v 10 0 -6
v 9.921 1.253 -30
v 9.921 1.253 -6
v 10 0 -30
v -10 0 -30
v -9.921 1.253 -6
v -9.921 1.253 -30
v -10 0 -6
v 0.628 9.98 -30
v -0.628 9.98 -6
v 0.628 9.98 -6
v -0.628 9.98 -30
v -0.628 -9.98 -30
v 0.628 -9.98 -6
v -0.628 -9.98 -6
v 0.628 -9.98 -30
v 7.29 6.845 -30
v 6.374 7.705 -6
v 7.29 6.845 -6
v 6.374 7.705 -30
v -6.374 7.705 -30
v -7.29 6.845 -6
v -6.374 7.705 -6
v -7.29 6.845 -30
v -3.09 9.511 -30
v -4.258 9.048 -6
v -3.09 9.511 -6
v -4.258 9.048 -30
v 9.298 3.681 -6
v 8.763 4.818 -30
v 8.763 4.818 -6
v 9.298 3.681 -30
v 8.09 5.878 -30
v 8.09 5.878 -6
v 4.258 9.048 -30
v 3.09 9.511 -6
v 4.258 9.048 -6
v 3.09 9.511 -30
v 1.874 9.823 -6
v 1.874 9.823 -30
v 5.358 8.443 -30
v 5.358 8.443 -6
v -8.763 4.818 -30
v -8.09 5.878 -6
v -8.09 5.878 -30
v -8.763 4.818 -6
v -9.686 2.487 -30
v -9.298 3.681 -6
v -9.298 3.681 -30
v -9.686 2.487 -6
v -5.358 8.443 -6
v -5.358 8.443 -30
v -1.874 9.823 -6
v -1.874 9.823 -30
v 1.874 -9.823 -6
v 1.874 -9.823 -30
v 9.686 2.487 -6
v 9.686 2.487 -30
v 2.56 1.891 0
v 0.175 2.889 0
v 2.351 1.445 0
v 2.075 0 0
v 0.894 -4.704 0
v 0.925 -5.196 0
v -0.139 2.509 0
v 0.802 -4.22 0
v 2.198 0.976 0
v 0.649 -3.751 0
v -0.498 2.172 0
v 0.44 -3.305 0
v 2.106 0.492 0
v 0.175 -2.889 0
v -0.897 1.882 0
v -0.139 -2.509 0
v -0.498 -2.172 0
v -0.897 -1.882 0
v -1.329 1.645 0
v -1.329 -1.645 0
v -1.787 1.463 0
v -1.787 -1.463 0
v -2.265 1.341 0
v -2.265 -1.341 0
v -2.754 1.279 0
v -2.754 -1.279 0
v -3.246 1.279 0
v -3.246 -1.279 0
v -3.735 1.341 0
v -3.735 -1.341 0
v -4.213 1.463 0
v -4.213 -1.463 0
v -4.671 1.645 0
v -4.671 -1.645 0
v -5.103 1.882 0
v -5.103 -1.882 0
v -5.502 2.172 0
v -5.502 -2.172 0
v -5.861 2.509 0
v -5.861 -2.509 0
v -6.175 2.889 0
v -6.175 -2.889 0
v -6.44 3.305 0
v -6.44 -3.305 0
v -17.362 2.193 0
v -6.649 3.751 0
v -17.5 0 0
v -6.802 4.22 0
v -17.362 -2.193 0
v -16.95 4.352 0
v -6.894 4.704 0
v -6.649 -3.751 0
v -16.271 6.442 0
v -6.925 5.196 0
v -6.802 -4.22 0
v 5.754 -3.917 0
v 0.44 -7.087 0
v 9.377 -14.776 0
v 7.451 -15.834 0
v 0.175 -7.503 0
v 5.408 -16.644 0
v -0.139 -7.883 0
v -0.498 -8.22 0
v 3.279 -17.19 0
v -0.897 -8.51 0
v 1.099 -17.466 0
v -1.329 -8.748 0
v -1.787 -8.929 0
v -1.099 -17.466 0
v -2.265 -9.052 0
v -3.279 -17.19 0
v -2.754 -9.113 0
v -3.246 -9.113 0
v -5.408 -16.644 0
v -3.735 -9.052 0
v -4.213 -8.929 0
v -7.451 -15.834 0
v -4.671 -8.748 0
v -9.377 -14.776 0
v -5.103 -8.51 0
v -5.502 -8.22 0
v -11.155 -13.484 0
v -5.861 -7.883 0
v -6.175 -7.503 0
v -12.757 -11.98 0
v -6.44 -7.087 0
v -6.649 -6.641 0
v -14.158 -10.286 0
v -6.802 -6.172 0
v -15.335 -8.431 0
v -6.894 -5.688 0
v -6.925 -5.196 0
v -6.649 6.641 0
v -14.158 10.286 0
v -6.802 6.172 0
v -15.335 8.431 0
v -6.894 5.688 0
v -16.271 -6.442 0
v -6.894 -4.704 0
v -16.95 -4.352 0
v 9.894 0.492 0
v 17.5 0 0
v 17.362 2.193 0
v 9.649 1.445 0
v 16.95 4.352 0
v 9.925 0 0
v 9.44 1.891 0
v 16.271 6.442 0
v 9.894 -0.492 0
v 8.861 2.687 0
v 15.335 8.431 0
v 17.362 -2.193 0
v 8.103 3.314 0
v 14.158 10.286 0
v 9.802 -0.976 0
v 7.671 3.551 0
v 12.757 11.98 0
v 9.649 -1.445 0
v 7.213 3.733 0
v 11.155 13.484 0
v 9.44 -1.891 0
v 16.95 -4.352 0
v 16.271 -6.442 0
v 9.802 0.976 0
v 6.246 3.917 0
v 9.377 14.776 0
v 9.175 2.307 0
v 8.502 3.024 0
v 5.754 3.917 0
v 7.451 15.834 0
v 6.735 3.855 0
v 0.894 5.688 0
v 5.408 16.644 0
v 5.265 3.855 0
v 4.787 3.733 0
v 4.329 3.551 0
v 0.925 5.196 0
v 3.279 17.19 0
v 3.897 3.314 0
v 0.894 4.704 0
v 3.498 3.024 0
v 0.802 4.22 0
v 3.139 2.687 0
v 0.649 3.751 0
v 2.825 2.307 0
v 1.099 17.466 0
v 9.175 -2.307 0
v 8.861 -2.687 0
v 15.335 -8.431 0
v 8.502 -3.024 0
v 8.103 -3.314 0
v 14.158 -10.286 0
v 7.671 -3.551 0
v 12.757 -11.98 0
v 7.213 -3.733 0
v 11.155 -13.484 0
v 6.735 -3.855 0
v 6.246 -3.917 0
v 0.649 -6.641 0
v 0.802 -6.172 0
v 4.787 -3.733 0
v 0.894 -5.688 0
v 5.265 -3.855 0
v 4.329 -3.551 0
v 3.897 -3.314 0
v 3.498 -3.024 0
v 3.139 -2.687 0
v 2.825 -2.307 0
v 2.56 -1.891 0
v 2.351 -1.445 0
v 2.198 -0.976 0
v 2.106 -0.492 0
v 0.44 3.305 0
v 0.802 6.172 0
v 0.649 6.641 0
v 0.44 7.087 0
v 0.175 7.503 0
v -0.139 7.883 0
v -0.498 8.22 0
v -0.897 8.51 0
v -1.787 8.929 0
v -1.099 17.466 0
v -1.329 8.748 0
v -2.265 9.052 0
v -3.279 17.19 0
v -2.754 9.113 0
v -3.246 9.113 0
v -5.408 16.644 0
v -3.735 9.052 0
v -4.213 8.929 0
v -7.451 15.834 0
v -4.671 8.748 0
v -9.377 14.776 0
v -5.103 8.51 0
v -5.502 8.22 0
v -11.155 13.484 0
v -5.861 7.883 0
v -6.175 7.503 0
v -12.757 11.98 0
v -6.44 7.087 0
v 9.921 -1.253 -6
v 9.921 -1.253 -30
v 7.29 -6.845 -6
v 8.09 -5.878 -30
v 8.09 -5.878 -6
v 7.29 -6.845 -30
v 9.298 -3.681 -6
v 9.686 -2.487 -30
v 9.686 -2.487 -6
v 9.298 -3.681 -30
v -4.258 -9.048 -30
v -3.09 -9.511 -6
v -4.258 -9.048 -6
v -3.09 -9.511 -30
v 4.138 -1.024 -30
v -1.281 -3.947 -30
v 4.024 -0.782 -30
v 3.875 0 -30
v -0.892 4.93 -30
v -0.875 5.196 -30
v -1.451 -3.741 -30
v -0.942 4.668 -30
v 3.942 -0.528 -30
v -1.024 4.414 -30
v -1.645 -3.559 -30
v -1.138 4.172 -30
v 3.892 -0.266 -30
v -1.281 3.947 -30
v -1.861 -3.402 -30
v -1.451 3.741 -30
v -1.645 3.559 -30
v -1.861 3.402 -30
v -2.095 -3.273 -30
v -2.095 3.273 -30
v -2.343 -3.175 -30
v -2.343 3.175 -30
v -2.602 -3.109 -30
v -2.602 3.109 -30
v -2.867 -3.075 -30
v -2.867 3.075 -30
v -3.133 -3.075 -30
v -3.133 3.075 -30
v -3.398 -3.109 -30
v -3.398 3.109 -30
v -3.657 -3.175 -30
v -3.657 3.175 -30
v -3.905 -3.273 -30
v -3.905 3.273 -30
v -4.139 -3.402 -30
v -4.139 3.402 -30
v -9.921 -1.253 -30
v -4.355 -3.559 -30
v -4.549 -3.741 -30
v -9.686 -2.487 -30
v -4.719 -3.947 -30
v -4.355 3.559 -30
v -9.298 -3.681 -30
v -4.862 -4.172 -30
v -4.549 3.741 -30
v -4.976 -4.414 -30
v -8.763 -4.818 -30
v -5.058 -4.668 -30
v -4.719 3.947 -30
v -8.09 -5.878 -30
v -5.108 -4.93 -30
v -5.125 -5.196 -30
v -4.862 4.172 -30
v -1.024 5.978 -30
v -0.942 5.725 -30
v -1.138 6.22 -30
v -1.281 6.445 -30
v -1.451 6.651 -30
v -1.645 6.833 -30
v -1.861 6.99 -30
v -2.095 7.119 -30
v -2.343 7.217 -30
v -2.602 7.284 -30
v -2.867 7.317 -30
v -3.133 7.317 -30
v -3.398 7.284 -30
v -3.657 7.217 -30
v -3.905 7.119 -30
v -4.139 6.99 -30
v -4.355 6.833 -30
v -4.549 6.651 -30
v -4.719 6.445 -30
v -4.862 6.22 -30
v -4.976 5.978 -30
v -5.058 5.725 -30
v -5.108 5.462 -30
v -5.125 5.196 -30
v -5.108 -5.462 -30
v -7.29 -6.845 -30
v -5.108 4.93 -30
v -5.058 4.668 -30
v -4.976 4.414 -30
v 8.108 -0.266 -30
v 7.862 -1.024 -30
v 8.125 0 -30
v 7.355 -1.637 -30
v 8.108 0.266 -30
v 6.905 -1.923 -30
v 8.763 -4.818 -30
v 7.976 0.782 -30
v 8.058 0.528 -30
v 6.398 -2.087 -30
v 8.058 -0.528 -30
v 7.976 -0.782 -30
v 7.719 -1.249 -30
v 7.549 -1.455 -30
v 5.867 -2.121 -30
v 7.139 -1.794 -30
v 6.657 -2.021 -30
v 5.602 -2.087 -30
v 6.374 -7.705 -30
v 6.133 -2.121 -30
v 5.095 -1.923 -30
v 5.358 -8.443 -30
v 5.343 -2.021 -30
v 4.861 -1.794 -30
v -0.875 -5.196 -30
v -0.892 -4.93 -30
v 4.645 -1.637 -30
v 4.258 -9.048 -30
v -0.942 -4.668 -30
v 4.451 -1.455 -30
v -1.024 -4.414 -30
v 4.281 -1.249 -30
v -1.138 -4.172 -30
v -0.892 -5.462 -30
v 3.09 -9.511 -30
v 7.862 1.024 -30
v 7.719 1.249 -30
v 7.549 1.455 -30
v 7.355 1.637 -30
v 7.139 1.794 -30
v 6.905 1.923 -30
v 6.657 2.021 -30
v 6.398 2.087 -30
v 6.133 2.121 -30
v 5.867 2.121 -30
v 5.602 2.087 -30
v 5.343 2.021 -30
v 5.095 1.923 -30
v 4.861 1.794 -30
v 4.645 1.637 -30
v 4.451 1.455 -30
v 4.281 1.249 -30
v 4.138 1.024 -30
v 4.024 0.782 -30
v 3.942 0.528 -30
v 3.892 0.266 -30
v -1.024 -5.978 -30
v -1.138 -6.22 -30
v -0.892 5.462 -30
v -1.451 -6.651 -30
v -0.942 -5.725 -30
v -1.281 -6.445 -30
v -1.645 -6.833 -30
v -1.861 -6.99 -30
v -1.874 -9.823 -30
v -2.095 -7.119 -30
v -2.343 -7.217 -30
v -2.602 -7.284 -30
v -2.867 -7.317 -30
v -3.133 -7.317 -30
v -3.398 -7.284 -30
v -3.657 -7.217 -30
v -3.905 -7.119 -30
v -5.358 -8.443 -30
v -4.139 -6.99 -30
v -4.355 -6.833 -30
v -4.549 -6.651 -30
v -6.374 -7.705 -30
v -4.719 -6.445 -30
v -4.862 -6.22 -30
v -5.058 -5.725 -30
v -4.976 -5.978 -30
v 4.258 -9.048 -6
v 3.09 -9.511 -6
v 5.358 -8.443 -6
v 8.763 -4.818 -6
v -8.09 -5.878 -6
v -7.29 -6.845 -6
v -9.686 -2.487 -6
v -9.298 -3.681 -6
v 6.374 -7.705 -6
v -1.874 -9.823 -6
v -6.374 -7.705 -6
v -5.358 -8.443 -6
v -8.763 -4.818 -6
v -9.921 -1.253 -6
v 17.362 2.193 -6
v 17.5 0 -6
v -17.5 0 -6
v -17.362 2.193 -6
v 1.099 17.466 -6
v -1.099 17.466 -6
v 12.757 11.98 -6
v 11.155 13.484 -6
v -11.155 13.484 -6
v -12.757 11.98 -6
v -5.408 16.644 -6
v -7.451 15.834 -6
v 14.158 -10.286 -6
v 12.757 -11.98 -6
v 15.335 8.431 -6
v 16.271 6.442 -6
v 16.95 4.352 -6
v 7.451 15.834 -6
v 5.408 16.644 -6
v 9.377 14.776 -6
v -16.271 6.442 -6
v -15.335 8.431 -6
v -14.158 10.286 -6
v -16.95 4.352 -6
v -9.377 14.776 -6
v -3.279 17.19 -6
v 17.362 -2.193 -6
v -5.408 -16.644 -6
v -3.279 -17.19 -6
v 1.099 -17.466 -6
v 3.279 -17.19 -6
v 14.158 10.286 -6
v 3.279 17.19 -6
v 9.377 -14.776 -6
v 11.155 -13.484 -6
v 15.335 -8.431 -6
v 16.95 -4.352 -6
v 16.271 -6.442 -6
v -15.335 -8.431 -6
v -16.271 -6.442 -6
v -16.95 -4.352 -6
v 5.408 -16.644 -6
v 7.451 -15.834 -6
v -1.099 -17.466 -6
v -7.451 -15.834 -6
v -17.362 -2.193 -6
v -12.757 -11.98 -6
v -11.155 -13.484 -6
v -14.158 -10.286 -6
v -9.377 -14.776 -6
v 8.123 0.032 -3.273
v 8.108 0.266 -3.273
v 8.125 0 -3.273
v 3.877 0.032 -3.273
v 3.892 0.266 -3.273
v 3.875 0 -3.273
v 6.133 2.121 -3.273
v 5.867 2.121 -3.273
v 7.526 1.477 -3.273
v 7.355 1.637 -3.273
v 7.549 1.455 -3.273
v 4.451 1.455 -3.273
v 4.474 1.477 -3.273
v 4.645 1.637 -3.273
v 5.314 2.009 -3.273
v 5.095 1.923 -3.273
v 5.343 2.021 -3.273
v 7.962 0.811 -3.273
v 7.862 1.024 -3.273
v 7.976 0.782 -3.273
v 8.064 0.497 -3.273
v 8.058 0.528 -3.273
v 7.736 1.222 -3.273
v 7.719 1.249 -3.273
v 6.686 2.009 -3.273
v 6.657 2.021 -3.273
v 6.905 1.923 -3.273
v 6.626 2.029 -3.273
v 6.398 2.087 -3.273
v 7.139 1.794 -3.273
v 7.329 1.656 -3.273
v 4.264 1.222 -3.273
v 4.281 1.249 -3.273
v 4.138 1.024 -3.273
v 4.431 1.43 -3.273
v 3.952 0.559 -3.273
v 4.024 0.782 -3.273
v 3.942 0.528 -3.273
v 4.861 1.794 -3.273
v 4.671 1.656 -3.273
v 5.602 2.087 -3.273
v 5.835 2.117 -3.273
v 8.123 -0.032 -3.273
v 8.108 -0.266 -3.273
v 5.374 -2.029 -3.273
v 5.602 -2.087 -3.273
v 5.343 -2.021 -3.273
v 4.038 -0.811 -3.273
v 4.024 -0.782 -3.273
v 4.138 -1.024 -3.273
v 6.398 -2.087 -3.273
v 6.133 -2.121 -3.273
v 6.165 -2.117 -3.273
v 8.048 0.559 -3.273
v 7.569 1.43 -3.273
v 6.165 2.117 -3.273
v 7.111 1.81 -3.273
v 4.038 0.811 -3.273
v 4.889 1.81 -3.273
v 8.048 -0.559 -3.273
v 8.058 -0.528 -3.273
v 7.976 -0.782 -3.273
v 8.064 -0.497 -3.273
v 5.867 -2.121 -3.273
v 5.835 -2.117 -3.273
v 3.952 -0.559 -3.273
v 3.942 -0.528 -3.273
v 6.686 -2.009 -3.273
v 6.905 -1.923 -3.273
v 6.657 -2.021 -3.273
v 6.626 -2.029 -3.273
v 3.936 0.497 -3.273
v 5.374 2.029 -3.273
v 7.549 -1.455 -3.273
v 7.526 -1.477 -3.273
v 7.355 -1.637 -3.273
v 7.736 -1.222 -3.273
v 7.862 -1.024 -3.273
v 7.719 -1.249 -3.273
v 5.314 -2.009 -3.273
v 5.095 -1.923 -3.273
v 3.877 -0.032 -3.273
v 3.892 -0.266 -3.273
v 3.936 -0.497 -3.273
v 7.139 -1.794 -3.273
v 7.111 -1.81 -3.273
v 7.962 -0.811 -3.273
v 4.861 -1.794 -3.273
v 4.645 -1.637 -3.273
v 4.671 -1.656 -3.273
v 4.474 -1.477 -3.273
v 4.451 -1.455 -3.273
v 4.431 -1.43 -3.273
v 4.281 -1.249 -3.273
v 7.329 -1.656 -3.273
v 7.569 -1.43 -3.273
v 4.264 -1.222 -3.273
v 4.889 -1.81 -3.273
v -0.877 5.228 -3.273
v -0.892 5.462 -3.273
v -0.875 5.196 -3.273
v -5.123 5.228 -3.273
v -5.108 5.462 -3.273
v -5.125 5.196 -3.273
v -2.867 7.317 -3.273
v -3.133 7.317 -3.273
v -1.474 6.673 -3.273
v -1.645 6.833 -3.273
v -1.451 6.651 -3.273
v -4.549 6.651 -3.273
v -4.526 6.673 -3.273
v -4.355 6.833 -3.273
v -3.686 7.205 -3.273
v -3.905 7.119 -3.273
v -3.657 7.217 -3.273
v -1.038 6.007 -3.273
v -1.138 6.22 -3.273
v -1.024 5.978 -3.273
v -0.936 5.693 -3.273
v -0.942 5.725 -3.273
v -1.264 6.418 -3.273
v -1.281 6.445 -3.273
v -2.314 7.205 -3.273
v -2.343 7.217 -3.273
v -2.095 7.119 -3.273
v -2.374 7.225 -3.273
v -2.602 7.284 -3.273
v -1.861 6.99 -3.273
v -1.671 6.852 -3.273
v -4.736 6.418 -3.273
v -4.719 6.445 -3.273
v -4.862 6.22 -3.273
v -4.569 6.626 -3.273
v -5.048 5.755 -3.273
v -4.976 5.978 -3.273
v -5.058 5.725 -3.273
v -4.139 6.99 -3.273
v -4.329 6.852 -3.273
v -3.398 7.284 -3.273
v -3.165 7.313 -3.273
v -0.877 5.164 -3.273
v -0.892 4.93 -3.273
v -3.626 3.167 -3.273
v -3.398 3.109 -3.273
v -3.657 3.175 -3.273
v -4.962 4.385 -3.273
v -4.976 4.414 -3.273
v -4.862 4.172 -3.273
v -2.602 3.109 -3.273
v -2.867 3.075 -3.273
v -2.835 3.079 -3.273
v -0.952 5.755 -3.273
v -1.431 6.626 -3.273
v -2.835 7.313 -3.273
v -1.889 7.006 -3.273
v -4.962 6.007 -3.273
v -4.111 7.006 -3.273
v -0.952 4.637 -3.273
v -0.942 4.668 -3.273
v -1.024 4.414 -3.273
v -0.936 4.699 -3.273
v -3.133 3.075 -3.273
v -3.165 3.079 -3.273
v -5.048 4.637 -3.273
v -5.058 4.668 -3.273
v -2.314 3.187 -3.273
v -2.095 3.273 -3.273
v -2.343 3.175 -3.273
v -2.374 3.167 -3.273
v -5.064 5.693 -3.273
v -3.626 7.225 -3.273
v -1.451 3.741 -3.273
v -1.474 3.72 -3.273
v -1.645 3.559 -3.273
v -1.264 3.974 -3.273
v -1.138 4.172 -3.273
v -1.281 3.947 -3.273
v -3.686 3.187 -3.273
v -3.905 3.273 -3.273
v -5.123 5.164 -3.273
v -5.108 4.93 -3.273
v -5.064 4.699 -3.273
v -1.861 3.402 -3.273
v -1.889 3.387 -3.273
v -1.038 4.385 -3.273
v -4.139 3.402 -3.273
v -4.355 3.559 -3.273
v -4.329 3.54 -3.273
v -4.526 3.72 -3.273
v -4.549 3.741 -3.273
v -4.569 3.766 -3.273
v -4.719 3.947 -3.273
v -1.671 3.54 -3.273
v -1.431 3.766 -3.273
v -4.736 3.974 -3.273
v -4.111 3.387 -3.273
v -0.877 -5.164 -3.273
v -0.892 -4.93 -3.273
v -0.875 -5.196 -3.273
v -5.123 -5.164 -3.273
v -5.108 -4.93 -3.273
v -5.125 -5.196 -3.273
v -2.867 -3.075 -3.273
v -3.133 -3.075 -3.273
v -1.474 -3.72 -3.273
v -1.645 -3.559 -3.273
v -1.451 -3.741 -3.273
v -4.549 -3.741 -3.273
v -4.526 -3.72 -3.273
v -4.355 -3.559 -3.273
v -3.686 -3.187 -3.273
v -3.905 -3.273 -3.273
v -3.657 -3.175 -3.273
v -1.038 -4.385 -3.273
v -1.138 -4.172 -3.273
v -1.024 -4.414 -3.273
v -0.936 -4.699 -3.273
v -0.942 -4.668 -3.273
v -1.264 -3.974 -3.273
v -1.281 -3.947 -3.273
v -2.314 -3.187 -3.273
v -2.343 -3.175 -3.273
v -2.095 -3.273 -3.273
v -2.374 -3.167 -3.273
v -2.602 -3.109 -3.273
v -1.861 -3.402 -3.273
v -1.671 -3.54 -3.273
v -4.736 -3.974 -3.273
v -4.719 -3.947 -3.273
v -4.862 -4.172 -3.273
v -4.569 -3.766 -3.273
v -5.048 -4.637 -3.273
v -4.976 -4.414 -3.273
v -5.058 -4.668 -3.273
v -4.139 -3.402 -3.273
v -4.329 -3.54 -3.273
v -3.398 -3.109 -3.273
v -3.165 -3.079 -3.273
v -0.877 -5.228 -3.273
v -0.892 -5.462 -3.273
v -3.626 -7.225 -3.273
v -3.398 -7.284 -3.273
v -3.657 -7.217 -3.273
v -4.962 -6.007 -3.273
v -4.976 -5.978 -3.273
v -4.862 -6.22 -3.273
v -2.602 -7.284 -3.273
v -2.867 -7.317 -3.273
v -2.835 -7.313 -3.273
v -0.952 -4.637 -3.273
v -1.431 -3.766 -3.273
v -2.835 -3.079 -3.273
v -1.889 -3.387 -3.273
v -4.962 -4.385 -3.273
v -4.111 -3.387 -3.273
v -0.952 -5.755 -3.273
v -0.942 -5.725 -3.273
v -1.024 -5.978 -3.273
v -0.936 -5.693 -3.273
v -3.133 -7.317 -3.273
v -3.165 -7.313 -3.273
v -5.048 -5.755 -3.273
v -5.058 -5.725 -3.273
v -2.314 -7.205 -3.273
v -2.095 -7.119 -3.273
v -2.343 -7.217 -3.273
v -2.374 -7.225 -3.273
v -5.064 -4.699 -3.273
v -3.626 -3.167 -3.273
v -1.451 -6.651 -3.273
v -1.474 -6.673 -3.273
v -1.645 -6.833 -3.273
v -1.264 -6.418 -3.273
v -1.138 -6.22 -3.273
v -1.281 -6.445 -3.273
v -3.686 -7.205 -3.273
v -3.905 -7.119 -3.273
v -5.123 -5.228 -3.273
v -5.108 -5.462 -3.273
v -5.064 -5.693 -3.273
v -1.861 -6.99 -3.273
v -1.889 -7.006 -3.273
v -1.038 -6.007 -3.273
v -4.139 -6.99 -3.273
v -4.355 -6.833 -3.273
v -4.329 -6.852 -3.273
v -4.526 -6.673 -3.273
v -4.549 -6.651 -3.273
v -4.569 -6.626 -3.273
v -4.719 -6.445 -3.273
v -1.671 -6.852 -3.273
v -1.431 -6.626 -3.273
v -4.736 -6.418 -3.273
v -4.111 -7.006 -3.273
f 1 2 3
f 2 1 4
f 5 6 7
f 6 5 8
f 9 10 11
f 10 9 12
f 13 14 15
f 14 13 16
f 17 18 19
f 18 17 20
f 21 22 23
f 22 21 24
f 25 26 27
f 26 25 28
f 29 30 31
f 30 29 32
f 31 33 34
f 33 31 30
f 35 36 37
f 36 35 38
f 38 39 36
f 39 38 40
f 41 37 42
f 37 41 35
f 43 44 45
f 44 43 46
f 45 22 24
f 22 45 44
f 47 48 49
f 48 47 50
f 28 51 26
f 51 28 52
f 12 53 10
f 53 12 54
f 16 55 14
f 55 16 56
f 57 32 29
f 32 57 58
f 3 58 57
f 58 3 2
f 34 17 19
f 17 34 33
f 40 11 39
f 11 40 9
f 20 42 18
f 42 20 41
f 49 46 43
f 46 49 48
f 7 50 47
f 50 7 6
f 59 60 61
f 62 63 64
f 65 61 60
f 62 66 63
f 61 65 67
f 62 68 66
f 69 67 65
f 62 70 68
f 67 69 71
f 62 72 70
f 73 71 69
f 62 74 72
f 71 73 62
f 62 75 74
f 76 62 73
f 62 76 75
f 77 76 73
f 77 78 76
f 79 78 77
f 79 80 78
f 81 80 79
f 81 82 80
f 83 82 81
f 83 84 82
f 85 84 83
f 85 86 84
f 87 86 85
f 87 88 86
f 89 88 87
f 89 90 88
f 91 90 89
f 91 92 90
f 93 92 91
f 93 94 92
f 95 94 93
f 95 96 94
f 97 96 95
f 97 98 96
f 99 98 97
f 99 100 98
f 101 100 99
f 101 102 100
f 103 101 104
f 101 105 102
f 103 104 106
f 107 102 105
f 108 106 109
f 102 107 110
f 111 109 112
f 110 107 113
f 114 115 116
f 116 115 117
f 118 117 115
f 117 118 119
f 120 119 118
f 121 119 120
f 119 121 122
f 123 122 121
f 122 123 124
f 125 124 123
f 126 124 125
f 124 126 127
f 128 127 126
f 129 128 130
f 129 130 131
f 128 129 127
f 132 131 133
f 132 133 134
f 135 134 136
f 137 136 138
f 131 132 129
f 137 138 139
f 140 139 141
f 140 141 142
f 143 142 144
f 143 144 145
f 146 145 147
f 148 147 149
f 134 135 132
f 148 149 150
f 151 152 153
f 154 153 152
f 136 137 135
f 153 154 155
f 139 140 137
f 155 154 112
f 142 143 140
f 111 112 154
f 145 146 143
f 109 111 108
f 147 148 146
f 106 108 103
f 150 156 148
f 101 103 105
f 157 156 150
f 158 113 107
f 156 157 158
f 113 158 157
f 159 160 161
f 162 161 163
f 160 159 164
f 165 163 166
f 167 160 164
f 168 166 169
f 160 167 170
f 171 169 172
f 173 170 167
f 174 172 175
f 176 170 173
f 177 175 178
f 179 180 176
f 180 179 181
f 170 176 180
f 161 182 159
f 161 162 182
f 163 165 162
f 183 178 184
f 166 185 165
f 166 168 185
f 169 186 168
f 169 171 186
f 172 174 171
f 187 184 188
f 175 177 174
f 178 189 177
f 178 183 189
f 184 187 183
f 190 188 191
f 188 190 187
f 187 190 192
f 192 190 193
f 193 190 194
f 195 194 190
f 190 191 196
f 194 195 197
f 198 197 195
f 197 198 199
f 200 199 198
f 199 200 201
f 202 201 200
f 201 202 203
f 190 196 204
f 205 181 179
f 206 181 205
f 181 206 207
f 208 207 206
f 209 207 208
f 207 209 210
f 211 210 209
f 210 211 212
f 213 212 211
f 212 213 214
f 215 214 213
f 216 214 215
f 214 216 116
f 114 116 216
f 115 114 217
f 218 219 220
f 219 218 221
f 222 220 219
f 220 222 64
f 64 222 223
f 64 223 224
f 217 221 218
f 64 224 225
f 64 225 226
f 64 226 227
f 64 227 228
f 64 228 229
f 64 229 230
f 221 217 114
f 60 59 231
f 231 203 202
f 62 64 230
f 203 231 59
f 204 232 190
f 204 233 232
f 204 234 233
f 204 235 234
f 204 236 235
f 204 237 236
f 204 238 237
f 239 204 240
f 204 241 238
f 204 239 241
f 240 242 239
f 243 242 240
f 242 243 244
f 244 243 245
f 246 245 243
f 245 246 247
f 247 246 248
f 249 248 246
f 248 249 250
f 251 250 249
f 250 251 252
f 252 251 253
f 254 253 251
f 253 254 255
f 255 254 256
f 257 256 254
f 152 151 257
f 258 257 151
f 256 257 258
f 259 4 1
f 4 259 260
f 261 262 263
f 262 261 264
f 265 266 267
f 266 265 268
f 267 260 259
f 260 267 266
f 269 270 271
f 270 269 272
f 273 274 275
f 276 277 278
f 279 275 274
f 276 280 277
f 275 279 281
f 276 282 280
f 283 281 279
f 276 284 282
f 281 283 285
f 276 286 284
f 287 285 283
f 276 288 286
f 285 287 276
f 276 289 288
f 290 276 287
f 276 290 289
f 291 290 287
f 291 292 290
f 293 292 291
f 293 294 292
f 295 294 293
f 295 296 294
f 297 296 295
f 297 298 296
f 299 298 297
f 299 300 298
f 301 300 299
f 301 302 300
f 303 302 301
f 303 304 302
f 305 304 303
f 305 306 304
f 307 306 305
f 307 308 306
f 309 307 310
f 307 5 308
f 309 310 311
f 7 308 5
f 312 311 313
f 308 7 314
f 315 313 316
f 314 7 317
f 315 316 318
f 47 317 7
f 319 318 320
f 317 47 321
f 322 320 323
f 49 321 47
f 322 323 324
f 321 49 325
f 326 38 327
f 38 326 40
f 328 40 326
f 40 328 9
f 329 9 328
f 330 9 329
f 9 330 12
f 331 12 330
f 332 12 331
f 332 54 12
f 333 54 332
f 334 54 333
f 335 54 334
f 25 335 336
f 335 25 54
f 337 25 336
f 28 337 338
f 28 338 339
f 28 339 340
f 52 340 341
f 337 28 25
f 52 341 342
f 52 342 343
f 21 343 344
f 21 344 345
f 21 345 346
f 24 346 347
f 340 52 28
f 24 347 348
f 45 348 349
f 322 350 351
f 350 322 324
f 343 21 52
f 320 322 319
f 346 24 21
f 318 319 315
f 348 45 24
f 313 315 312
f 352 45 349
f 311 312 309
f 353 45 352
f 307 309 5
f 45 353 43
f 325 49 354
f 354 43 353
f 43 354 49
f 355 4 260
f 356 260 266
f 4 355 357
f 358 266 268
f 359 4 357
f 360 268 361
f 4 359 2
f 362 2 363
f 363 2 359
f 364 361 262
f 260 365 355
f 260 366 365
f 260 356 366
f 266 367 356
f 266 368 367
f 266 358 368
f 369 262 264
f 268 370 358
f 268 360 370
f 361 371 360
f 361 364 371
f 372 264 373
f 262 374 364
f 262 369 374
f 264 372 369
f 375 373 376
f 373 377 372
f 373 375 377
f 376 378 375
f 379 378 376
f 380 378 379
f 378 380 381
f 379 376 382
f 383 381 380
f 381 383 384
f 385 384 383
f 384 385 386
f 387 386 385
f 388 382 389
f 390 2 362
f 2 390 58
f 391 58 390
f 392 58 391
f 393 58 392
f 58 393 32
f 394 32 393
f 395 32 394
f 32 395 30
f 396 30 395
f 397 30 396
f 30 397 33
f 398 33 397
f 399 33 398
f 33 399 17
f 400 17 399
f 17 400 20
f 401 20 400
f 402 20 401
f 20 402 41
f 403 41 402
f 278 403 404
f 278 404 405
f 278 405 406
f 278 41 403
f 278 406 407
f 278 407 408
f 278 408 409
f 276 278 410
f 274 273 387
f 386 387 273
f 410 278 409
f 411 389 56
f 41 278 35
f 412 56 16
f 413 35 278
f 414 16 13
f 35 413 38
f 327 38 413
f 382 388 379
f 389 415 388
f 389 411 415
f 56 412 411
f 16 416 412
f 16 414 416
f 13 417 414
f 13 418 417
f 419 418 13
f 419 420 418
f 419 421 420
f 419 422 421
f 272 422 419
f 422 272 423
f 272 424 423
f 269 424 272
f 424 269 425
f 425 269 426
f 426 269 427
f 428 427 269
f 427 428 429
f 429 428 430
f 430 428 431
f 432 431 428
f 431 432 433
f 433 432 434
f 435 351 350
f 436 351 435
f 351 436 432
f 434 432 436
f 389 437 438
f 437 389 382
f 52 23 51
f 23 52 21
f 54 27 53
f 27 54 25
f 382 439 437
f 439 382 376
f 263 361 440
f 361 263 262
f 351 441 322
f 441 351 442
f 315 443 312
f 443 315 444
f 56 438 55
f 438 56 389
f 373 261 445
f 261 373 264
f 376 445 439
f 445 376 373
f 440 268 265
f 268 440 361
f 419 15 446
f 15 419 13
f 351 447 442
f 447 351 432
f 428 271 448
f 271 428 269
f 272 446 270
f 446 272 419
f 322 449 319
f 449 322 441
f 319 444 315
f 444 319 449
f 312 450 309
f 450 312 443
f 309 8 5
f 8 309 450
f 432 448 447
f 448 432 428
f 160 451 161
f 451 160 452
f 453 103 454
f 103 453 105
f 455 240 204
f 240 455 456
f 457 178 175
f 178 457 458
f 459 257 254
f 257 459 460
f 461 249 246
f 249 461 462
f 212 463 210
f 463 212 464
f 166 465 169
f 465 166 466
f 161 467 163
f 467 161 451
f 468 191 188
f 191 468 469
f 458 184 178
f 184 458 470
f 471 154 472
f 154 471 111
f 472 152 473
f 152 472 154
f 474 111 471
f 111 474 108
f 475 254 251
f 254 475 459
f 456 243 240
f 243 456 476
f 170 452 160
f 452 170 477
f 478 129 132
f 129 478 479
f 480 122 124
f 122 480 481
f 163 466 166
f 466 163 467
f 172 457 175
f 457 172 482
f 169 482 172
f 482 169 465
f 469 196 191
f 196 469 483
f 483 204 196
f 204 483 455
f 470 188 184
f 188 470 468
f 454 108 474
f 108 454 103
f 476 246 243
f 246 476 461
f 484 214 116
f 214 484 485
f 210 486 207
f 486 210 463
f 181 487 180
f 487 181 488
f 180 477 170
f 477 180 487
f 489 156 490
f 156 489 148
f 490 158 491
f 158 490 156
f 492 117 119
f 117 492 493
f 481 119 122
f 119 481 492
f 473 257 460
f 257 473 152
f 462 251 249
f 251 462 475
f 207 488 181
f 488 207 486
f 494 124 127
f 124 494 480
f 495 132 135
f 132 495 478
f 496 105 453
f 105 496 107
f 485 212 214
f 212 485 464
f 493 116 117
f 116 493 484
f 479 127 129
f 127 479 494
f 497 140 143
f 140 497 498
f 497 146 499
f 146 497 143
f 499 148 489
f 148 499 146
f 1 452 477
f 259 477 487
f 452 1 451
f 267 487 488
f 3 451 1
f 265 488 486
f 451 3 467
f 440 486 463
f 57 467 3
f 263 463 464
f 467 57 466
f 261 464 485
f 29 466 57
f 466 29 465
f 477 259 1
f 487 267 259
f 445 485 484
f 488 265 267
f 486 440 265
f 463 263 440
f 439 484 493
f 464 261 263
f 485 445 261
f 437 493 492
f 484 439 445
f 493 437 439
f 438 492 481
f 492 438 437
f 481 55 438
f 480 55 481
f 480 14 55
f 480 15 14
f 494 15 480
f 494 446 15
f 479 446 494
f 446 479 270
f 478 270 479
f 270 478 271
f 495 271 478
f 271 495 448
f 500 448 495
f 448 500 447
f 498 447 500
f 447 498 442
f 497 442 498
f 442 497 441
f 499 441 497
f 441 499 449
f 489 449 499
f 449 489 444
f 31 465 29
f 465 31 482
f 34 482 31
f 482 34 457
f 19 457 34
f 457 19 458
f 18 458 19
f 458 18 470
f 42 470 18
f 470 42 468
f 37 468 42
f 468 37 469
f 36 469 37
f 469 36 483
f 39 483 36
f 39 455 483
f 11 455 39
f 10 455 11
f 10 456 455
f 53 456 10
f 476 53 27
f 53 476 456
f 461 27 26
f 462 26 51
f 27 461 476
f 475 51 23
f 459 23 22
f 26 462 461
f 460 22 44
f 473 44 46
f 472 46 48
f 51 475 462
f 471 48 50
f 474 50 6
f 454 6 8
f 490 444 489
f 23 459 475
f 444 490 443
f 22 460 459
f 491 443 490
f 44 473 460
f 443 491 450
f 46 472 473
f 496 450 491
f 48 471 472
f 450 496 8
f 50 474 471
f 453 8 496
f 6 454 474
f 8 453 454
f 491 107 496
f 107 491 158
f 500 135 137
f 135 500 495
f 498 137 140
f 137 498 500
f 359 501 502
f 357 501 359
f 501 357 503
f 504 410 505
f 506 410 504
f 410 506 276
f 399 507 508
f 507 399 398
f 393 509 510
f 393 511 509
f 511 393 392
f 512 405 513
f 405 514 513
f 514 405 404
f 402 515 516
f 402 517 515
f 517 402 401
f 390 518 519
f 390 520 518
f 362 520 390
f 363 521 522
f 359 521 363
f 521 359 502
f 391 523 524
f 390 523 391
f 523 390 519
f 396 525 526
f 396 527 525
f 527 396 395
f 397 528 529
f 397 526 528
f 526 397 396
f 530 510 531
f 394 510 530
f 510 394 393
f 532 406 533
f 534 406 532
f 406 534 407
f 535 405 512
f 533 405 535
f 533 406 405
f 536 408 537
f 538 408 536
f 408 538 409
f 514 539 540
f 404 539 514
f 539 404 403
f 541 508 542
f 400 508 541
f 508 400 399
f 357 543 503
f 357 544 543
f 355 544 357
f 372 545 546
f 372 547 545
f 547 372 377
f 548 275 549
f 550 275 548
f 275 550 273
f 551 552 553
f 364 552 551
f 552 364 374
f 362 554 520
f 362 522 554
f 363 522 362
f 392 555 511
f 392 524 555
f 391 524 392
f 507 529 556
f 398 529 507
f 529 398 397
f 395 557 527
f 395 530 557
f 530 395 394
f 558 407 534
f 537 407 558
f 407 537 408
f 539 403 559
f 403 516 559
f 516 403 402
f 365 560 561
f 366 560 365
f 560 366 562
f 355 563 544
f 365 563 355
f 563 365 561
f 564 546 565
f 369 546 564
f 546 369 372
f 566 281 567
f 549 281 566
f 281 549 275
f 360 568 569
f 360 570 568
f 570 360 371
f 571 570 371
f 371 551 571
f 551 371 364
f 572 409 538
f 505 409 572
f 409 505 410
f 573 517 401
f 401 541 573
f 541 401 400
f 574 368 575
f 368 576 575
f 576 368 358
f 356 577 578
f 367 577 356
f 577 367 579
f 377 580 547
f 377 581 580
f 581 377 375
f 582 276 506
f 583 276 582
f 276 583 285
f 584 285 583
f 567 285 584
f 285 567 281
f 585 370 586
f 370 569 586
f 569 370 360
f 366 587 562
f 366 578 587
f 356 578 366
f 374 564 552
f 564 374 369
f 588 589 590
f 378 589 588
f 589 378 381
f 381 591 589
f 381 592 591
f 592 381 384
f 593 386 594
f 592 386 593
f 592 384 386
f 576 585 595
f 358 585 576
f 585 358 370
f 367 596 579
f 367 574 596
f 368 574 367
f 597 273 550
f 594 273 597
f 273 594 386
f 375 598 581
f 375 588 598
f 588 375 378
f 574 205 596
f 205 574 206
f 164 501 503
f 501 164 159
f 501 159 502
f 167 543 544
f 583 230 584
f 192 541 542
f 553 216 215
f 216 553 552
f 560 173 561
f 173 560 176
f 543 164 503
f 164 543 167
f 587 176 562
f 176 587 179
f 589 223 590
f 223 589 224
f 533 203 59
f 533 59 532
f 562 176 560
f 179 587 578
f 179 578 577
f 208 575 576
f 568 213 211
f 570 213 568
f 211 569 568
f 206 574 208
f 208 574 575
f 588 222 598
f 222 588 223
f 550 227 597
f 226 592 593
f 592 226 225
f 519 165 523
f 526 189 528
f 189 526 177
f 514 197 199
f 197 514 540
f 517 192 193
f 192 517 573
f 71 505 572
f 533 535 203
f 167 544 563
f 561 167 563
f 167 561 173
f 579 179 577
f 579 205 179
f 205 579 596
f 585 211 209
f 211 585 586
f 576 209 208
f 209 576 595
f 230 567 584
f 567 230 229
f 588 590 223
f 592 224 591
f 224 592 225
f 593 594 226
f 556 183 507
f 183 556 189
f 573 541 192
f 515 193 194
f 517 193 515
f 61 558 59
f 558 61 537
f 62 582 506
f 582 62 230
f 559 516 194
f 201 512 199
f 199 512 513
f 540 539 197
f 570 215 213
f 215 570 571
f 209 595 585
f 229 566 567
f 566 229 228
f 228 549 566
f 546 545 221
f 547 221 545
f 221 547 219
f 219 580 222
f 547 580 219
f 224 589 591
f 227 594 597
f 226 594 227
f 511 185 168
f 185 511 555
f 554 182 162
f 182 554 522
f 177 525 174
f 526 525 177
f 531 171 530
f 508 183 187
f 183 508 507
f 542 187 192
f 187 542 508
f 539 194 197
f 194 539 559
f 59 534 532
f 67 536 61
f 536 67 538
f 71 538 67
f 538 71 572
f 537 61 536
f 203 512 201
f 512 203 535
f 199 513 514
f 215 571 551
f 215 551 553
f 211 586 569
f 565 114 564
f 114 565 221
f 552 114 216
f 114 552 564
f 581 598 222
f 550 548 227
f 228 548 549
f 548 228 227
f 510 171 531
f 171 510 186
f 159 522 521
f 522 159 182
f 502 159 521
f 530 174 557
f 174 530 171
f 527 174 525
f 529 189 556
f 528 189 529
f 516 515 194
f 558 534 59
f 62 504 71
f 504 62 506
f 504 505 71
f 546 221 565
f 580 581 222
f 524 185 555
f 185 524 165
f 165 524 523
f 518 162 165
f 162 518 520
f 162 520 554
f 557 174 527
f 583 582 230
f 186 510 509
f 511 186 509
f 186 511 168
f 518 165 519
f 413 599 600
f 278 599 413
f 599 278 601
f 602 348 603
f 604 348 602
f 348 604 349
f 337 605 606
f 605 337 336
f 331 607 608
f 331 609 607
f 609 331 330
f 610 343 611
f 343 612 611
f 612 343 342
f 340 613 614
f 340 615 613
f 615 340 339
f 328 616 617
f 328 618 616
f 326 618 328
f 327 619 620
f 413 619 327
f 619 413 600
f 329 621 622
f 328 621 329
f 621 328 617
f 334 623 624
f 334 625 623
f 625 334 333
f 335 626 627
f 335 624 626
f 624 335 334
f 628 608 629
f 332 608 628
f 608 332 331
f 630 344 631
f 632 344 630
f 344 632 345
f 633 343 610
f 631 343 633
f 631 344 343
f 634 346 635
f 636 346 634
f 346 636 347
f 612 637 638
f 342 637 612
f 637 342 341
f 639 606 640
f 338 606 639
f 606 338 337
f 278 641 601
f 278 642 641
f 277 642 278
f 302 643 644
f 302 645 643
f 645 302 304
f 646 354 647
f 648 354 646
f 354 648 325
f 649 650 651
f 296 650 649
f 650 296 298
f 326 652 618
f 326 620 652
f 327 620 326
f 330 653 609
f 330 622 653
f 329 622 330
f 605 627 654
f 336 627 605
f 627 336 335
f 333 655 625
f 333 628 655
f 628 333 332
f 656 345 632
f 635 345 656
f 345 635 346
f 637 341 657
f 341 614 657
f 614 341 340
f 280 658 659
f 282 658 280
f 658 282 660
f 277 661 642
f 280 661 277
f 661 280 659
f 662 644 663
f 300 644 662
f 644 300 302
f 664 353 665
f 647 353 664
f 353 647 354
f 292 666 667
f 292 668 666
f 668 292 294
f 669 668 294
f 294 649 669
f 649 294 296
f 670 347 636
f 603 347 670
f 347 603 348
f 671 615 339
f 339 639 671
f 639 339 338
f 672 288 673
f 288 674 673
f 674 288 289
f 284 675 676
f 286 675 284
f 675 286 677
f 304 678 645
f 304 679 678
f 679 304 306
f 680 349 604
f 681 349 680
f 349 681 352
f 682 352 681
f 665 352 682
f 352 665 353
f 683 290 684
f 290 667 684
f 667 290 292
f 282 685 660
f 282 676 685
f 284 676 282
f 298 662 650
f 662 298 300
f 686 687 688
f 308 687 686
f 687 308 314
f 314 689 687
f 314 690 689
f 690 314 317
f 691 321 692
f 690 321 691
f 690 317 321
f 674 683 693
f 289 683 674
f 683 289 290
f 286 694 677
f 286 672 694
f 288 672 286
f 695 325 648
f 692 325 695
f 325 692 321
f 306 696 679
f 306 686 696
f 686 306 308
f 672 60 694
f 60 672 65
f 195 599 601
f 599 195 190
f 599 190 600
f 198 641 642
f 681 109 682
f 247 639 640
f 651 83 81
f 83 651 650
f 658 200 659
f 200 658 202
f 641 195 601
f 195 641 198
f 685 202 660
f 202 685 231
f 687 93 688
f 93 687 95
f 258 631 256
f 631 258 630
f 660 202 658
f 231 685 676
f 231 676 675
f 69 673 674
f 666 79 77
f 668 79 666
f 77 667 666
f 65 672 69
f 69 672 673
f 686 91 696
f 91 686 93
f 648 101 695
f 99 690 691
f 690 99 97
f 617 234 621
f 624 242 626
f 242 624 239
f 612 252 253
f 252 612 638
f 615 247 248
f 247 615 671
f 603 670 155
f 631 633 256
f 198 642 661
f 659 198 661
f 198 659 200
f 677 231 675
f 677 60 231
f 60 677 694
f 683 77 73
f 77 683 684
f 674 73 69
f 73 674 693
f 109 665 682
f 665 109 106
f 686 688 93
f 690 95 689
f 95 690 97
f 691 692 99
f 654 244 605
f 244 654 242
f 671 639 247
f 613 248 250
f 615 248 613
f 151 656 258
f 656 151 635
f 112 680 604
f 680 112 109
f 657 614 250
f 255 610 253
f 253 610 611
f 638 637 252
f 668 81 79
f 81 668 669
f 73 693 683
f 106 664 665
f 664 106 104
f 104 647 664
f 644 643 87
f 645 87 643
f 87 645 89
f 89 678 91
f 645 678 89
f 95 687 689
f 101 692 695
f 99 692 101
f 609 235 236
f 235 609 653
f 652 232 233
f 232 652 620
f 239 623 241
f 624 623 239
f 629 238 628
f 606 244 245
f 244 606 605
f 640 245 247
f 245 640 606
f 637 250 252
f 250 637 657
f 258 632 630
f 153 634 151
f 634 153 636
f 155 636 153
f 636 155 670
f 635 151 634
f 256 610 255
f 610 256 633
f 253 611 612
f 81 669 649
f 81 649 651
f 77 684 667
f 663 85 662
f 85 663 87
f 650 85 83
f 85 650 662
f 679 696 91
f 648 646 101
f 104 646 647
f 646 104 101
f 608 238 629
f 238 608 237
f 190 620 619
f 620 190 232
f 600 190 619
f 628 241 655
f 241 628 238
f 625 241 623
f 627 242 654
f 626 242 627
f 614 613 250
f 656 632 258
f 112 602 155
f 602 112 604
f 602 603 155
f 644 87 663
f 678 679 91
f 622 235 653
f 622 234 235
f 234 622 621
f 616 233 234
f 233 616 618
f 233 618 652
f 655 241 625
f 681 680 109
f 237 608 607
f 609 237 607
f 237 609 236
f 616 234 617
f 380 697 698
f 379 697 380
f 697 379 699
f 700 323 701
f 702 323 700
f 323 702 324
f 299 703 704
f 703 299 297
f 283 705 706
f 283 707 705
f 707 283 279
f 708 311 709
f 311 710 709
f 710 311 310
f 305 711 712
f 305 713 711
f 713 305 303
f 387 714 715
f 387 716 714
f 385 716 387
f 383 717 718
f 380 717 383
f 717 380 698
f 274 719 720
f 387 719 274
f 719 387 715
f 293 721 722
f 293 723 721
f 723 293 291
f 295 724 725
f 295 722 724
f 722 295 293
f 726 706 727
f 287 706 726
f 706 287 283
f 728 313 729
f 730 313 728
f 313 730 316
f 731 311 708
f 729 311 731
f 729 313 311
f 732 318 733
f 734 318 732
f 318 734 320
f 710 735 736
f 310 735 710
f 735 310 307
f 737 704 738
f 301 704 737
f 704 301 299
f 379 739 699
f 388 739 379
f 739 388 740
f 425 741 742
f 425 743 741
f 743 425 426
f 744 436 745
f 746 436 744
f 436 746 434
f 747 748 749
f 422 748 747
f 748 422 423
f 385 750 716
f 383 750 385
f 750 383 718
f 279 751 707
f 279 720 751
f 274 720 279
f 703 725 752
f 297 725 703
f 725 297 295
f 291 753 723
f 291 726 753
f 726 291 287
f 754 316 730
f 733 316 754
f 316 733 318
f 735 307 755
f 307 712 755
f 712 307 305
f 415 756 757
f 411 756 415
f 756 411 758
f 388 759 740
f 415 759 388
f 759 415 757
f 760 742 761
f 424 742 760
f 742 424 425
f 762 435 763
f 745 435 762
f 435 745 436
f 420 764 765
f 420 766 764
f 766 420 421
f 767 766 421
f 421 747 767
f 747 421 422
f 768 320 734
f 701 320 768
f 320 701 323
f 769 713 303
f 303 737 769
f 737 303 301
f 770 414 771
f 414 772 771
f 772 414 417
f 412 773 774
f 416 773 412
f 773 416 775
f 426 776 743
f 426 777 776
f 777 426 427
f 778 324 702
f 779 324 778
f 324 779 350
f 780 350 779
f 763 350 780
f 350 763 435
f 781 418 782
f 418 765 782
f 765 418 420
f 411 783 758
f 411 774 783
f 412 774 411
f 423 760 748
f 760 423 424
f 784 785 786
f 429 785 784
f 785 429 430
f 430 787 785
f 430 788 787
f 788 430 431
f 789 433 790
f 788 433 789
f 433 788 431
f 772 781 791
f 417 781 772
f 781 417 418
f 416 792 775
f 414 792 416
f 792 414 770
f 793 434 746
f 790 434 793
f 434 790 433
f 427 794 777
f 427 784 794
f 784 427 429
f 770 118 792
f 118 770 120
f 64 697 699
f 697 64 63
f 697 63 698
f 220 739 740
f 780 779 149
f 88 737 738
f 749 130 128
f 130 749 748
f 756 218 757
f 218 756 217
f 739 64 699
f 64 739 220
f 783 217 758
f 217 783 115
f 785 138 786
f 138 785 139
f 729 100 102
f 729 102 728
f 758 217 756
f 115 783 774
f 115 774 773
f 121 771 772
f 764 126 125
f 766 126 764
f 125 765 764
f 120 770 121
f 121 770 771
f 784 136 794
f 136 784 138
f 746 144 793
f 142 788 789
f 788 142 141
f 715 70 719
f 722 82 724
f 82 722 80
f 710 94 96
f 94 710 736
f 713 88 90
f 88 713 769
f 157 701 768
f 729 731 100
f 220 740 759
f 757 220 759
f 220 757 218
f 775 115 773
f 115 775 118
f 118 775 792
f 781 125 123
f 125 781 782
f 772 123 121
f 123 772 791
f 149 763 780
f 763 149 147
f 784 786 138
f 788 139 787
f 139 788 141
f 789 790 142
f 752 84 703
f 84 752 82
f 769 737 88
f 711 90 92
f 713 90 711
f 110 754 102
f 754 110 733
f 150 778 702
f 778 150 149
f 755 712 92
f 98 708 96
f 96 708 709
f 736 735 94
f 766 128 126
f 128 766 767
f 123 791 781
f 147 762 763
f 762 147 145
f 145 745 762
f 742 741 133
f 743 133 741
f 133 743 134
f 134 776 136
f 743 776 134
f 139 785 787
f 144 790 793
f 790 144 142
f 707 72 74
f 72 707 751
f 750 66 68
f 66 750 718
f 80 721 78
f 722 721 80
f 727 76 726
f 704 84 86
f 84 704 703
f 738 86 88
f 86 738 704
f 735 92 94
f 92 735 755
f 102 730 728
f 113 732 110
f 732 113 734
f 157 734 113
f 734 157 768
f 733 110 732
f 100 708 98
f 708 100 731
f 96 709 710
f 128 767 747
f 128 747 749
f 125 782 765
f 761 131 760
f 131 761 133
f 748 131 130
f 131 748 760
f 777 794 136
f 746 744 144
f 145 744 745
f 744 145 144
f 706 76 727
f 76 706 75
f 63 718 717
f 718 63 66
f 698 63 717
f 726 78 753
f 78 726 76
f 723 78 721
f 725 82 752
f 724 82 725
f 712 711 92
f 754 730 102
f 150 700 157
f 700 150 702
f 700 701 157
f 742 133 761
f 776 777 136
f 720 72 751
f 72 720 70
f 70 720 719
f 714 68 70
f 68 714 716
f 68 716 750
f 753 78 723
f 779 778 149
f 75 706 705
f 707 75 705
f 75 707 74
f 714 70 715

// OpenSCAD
$fn = 50;


difference() {
	union() {
		translate(v = [0, 0, -30.0000000000]) {
			cylinder(h = 30, r = 10.0000000000);
		}
		translate(v = [0, 0, -6.0000000000]) {
			cylinder(h = 6, r = 17.5000000000);
		}
	}
	union() {
		translate(v = [6.0000000000, 0.0000000000, 0]) {
			rotate(a = [0, 0, 0]) {
				difference() {
					union() {
						#translate(v = [0, 0, -30.0000000000]) {
							cylinder(h = 30, r = 2.0000000000);
						}
						#translate(v = [0, 0, -30.0000000000]) {
							cylinder(h = 30, r = 2.1250000000);
						}
						#translate(v = [0, 0, -3.5000000000]) {
							cylinder(h = 3.5000000000, r = 10.0000000000, r1 = 2.0000000000, r2 = 3.9250000000);
						}
						#translate(v = [0, 0, -30.0000000000]) {
							cylinder(h = 30, r = 2.0000000000);
						}
					}
					union();
				}
			}
		}
		translate(v = [-3.0000000000, 5.1961524227, 0]) {
			rotate(a = [0, 0, 0]) {
				difference() {
					union() {
						#translate(v = [0, 0, -30.0000000000]) {
							cylinder(h = 30, r = 2.0000000000);
						}
						#translate(v = [0, 0, -30.0000000000]) {
							cylinder(h = 30, r = 2.1250000000);
						}
						#translate(v = [0, 0, -3.5000000000]) {
							cylinder(h = 3.5000000000, r = 10.0000000000, r1 = 2.0000000000, r2 = 3.9250000000);
						}
						#translate(v = [0, 0, -30.0000000000]) {
							cylinder(h = 30, r = 2.0000000000);
						}
					}
					union();
				}
			}
		}
		translate(v = [-3.0000000000, -5.1961524227, 0]) {
			rotate(a = [0, 0, 0]) {
				difference() {
					union() {
						#translate(v = [0, 0, -30.0000000000]) {
							cylinder(h = 30, r = 2.0000000000);
						}
						#translate(v = [0, 0, -30.0000000000]) {
							cylinder(h = 30, r = 2.1250000000);
						}
						#translate(v = [0, 0, -3.5000000000]) {
							cylinder(h = 3.5000000000, r = 10.0000000000, r1 = 2.0000000000, r2 = 3.9250000000);
						}
						#translate(v = [0, 0, -30.0000000000]) {
							cylinder(h = 30, r = 2.0000000000);
						}
					}
					union();
				}
			}
		}
	}
}
